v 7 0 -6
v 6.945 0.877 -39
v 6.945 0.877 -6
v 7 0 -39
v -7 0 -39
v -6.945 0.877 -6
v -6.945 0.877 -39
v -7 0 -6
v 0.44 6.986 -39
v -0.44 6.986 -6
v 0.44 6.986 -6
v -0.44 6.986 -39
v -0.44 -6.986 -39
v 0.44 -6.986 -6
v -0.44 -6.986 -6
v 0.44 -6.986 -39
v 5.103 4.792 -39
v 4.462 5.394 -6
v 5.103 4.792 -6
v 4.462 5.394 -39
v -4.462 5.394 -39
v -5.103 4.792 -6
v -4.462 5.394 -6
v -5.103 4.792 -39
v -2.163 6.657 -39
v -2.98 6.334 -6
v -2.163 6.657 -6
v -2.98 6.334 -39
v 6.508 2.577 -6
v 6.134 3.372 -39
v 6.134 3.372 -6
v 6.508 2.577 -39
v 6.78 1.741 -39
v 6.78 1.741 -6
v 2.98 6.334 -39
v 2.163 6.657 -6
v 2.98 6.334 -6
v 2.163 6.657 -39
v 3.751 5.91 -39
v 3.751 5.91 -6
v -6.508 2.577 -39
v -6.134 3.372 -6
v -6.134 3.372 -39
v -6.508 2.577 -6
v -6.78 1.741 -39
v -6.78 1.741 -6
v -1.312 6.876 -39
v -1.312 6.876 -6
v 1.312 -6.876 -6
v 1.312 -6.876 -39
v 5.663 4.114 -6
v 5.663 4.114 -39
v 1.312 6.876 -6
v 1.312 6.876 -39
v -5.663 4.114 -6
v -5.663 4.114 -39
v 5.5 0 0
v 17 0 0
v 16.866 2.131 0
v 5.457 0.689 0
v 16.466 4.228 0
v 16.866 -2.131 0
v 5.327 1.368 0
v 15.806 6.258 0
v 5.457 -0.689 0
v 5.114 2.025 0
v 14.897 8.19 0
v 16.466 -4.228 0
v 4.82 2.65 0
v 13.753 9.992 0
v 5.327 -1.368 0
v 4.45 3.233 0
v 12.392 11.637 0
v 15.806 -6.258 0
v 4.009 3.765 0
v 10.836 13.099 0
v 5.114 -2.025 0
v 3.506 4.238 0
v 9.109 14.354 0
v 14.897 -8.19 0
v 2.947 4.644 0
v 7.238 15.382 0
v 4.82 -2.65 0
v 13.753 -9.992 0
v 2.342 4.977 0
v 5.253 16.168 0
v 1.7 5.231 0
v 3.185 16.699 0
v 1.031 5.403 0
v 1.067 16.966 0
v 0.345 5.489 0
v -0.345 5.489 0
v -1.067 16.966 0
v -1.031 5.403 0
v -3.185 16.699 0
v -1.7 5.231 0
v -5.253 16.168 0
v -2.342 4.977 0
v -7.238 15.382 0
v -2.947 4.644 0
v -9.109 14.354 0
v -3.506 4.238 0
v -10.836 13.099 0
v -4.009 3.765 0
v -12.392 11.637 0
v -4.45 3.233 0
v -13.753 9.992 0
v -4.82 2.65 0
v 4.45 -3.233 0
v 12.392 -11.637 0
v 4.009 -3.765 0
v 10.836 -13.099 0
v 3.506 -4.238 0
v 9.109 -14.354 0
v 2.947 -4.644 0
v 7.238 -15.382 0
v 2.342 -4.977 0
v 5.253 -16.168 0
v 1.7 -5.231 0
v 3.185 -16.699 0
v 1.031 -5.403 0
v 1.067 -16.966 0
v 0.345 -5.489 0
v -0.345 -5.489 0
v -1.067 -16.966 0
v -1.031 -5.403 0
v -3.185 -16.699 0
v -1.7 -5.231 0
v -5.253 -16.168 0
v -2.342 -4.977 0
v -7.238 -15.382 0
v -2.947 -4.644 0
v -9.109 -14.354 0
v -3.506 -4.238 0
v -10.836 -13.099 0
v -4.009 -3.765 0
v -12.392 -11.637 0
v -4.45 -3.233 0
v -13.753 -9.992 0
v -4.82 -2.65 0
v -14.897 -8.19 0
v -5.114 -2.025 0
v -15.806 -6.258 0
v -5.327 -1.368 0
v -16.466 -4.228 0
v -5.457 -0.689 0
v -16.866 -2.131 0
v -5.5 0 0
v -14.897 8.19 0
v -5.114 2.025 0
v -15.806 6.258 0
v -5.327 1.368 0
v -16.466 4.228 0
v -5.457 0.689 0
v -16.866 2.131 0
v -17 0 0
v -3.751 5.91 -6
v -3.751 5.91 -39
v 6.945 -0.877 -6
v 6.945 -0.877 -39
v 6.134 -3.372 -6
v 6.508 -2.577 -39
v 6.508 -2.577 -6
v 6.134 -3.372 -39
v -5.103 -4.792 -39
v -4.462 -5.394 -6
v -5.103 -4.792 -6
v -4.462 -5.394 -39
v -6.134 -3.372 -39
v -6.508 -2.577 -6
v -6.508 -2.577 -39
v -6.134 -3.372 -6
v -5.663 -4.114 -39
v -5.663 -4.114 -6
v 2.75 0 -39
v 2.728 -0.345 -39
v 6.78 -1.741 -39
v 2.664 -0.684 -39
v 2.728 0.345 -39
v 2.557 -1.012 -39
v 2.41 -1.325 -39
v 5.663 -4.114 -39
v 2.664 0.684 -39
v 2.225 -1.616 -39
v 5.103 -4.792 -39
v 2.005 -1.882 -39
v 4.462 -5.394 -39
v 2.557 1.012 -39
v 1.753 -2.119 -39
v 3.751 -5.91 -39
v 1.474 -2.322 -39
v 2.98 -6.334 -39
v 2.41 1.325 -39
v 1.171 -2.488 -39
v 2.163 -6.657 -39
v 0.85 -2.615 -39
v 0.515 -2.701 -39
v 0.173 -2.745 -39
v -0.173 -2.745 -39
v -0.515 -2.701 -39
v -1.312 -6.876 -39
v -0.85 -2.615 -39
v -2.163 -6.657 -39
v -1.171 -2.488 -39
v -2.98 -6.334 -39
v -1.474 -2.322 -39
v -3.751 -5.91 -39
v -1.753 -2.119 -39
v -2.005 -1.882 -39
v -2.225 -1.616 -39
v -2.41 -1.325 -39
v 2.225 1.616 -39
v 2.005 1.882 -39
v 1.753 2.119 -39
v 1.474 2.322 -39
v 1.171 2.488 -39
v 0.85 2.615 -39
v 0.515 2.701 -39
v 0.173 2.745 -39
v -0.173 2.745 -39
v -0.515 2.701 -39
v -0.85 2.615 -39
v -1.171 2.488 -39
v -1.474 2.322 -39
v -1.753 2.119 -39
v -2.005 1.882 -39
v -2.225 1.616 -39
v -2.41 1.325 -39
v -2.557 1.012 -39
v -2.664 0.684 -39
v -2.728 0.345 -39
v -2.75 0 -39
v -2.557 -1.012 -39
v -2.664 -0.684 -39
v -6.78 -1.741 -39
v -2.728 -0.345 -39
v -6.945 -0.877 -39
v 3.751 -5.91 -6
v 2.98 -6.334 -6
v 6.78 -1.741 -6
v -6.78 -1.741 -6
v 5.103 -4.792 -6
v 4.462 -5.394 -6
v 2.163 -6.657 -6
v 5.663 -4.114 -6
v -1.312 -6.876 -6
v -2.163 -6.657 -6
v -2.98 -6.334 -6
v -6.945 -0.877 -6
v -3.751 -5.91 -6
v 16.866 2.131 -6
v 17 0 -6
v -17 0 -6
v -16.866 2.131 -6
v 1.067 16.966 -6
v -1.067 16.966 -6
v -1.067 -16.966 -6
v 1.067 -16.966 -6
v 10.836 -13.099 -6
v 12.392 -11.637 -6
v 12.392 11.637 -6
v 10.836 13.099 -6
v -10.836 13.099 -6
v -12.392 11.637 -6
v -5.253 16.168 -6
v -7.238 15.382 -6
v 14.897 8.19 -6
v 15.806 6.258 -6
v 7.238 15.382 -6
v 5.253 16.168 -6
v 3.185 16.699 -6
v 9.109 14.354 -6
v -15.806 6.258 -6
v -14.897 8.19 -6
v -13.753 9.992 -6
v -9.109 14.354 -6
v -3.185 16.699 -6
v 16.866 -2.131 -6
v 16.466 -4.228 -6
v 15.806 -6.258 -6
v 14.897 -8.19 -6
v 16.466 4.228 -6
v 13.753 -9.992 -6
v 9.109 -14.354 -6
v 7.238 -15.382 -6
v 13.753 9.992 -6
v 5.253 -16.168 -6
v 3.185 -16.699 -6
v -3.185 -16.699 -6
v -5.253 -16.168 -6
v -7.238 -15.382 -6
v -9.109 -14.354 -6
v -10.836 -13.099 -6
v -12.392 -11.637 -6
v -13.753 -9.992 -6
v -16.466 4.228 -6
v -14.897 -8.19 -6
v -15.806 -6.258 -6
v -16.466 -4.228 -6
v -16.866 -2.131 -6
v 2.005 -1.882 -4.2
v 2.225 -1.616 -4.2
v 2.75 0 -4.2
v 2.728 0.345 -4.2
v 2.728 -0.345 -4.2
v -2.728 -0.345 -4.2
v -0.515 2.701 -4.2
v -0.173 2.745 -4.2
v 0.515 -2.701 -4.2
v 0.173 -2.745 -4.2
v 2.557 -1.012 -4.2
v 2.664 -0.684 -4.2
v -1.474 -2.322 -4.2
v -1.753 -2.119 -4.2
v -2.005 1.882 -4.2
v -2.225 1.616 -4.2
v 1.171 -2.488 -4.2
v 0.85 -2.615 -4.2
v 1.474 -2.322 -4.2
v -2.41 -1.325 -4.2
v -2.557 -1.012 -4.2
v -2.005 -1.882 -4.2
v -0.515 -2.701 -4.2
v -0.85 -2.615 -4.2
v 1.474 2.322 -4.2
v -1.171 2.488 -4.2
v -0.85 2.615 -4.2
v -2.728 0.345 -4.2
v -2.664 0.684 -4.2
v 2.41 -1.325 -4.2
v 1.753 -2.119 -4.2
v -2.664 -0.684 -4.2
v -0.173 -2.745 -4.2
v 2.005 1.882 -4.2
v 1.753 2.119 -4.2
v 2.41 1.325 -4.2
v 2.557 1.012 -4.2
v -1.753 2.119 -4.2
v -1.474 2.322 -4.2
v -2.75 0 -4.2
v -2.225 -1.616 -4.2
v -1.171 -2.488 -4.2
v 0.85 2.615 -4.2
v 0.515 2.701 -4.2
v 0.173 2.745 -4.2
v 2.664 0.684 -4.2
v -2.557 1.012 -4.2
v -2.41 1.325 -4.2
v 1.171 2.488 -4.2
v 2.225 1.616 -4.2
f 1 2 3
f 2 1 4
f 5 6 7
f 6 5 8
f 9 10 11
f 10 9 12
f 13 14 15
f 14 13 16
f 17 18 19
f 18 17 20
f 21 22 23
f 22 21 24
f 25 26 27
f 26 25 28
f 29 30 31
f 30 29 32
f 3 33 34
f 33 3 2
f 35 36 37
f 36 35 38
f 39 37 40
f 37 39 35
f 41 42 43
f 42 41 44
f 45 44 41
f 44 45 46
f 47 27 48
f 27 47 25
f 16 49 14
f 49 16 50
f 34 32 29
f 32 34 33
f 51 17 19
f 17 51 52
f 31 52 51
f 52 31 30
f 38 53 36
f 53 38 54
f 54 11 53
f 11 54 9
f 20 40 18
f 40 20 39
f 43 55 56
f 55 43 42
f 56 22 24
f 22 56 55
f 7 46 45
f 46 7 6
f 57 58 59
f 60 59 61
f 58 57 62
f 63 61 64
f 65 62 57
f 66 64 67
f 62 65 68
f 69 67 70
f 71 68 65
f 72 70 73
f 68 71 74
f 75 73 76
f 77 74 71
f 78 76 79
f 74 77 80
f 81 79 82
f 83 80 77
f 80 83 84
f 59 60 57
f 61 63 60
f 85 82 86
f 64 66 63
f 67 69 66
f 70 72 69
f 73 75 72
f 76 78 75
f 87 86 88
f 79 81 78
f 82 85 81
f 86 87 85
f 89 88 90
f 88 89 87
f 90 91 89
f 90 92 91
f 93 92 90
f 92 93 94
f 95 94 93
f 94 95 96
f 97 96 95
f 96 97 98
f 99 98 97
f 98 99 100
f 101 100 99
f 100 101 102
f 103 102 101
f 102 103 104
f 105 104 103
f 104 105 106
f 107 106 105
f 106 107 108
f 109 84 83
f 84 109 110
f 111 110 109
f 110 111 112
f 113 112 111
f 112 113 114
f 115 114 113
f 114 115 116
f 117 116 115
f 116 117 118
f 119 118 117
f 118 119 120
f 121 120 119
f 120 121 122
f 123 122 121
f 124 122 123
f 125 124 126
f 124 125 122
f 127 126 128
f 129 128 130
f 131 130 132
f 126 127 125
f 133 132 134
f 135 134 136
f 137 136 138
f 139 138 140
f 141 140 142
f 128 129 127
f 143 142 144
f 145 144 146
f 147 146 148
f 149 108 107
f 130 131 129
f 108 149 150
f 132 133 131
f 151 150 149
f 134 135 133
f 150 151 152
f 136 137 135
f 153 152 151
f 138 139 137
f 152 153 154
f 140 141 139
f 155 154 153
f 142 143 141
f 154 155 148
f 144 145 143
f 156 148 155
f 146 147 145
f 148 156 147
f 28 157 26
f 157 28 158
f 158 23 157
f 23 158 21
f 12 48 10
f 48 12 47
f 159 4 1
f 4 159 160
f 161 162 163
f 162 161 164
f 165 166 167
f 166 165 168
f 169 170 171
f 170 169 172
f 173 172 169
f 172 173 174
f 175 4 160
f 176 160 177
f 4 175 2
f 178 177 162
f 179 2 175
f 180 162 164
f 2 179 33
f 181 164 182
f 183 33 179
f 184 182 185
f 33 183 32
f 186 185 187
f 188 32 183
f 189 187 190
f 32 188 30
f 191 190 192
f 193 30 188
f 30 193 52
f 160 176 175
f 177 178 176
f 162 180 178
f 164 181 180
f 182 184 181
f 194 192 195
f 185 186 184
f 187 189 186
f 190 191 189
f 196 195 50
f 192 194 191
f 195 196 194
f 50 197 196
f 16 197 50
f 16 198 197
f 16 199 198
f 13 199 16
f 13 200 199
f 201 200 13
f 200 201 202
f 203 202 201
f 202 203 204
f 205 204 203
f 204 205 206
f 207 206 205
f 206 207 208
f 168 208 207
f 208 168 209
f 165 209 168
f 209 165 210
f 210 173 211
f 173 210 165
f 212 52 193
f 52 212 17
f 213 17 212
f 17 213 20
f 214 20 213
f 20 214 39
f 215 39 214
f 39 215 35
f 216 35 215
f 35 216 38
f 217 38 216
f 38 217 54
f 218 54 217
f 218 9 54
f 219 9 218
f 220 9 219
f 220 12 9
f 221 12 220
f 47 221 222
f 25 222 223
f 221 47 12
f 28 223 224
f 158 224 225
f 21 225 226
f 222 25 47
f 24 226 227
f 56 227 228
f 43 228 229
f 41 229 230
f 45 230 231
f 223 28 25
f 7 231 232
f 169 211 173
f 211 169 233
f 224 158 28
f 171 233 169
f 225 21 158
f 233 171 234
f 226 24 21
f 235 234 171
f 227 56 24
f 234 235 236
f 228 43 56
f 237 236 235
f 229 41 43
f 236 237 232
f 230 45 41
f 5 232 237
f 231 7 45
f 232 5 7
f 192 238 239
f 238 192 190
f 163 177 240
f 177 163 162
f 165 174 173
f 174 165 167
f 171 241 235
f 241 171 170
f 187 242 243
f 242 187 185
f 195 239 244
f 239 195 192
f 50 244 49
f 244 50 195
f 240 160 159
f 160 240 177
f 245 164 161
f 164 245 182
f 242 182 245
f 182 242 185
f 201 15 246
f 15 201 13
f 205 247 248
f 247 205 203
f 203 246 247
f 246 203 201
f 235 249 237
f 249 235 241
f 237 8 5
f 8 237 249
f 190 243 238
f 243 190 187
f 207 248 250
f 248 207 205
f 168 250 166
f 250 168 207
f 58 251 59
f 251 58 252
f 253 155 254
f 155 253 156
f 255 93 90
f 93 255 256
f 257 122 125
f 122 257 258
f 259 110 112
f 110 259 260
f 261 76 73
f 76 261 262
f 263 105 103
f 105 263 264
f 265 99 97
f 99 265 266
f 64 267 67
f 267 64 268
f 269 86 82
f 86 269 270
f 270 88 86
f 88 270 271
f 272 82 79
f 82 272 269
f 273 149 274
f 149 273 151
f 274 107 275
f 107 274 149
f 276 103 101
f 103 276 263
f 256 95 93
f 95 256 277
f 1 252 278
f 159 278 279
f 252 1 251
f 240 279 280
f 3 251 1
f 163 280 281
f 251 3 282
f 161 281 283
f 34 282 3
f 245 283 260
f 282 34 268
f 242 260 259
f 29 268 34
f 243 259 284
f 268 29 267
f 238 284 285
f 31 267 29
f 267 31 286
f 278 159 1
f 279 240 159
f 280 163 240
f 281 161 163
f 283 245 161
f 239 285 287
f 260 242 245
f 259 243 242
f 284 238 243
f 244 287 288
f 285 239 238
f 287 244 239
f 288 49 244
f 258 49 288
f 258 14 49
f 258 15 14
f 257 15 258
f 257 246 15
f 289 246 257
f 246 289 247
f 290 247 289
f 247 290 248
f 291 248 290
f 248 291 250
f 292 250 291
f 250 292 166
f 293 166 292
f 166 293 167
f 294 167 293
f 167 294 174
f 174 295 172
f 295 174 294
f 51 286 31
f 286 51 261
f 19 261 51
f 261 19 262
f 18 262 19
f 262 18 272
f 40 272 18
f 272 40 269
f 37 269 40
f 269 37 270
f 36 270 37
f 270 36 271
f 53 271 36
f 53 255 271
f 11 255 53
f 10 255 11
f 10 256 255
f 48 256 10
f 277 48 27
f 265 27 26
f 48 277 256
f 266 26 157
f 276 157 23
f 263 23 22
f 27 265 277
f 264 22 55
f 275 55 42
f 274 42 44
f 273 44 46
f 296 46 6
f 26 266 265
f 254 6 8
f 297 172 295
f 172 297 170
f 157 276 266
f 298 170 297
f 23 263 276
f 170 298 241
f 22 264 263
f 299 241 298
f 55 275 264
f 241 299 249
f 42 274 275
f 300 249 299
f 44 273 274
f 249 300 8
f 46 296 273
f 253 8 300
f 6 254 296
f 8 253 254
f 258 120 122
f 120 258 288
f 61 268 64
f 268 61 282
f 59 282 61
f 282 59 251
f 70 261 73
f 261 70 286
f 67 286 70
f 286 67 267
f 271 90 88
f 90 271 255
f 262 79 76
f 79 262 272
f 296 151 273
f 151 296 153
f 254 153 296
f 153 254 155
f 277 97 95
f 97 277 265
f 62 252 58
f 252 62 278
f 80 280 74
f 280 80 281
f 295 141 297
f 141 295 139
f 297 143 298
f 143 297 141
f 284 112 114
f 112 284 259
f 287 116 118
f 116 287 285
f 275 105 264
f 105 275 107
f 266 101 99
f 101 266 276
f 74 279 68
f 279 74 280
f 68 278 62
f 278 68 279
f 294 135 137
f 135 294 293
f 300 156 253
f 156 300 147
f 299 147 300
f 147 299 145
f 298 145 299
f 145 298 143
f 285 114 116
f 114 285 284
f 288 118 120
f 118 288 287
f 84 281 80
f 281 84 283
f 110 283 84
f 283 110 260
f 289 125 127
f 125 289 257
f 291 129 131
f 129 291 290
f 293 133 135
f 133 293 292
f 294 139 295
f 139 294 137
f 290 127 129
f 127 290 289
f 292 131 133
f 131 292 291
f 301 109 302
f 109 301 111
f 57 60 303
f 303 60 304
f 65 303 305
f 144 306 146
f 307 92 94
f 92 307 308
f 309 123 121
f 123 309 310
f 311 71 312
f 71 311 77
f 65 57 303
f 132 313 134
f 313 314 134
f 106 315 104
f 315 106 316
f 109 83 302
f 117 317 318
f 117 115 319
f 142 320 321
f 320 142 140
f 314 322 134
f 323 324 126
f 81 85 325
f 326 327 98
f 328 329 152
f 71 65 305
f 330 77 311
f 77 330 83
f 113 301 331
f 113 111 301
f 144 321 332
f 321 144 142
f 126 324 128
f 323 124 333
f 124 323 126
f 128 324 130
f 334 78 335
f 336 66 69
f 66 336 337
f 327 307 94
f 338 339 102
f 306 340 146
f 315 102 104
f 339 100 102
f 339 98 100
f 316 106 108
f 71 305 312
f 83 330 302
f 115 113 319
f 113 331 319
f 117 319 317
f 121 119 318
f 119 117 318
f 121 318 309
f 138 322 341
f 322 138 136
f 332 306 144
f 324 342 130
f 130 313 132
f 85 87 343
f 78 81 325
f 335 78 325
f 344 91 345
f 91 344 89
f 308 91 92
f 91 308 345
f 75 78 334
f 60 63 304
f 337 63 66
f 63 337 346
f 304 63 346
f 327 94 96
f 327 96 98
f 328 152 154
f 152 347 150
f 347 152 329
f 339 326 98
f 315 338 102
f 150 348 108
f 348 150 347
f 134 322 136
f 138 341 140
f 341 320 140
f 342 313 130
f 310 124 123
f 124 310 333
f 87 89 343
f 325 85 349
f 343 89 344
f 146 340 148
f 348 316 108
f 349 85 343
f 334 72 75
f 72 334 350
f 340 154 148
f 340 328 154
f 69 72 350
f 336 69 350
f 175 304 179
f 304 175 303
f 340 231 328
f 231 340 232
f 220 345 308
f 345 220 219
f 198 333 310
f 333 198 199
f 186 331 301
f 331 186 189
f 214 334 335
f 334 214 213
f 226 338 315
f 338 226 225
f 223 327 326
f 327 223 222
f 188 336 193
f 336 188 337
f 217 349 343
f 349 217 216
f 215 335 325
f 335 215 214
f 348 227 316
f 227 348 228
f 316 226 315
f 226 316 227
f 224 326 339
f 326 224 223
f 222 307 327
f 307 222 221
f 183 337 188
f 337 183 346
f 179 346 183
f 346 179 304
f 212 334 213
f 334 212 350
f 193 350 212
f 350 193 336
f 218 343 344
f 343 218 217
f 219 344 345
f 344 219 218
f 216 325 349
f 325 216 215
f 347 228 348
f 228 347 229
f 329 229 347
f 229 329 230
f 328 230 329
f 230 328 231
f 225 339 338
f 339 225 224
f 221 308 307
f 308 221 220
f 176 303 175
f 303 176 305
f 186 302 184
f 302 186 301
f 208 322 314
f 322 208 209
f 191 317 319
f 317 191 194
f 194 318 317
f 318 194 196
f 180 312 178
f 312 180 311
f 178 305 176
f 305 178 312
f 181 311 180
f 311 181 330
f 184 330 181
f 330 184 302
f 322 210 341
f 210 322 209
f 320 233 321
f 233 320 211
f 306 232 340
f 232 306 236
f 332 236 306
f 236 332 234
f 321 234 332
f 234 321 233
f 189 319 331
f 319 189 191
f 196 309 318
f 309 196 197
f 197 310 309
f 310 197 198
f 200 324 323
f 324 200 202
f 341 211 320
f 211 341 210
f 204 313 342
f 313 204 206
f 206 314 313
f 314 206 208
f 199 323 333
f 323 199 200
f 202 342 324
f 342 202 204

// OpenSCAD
$fn = 50;


difference() {
	union() {
		translate(v = [0, 0, -39.0000000000]) {
			cylinder(h = 39, r = 7.0000000000);
		}
		translate(v = [0, 0, -6.0000000000]) {
			cylinder(h = 6, r = 17.0000000000);
		}
	}
	union() {
		translate(v = [0, 0, 0]) {
			rotate(a = [0, 0, 0]) {
				difference() {
					union() {
						#translate(v = [0, 0, -39.0000000000]) {
							cylinder(h = 39, r = 2.2500000000);
						}
						#translate(v = [0, 0, -4.2000000000]) {
							cylinder(h = 4.2000000000, r1 = 2.7500000000, r2 = 5.5000000000);
						}
						#translate(v = [0, 0, -39.0000000000]) {
							cylinder(h = 39, r = 2.7500000000);
						}
						#translate(v = [0, 0, -39.0000000000]) {
							cylinder(h = 39, r = 2.2500000000);
						}
					}
					union();
				}
			}
		}
	}
}
